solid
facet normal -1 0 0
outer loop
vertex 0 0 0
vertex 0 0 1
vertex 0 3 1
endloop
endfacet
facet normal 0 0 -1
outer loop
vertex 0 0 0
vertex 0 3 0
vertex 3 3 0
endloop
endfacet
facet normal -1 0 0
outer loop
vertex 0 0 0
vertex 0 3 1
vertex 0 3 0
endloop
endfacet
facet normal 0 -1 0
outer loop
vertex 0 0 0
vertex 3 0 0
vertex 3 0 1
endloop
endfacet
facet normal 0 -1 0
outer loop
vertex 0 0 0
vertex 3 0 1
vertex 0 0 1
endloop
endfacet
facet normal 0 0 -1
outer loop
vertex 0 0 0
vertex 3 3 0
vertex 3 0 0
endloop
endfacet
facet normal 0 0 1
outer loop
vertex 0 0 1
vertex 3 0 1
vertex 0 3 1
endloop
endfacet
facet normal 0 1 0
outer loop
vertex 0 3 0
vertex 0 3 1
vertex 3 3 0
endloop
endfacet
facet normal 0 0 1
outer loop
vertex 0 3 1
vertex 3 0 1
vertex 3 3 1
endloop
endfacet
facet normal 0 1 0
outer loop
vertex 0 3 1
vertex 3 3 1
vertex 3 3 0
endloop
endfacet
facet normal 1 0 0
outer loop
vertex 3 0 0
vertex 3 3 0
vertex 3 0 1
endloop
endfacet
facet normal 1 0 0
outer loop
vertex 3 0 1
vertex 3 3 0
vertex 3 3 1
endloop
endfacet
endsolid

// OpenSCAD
/* Warning, this is a very basic generator with a lot of approximation 
input data : [VQFN, 8KW, 3x3x1.0mm, 16, , A, C04-00664A]
generated by com.zoubworld.electronics.cad.model3d.Basic
Date : Sun Feb 15 10:50:49 CET 2026
*/

//body
color("black")
translate([0,0,0])
cube([3.0,3.0,1.0], center=false);
